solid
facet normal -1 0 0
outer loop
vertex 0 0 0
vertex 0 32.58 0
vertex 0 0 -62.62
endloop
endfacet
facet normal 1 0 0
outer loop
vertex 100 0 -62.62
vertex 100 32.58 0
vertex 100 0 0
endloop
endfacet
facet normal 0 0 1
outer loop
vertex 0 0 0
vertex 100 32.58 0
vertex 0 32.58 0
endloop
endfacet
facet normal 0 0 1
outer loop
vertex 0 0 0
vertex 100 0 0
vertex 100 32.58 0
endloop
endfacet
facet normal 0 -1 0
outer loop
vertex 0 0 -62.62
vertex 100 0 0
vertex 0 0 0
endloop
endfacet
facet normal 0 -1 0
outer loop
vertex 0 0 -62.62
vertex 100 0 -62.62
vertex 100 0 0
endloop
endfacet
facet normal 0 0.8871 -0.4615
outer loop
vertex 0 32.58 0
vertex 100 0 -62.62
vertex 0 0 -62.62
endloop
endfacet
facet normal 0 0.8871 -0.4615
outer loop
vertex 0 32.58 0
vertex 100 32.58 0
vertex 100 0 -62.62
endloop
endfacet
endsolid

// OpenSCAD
/* doodle-meta {"version":1,"parameters":{"width":{"label":"Overall width","description":"Changes the body width","unit":"mm","feature":"body_width"},"depth":{"label":"Overall depth","description":"Changes the body depth","unit":"mm","feature":"body_depth"},"height":{"label":"Overall height","description":"Changes the body height","unit":"mm","feature":"body_height"}},"features":{"body_width":{"kind":"dimension","axis":"x","label":"Overall width"},"body_depth":{"kind":"dimension","axis":"y","label":"Overall depth"},"body_height":{"kind":"dimension","axis":"z","label":"Overall height"}}} */

// Wedge ramp (lofted incline block)
// Front view (looking down Y): right-angled triangle -> vertical back at Y=0,
//   horizontal base at Z=0, sloped hypotenuse descending to the front edge (Y=depth).
// Top view (looking down Z): rectangular footprint of constant width.
// Constructed by extruding the triangular profile (in the YZ plane) along X (width).

width  = 100.0;   // X: width
depth  = 62.62;   // Y: front-to-back depth
height = 32.58;   // Z: height

module wedge() {
    // Triangular profile lies in the YZ plane (local x -> Y, local y -> Z),
    // extruded along the X axis (width).
    // Base sits on the build plate (Z=0). Vertical back at Y=0,
    // sloped hypotenuse descends to the front edge (Y=depth, Z=0).
    rotate([0, 90, 0])
        linear_extrude(height = width, center = false) {
            polygon(points = [
                [0, 0],        // back-bottom  (Y=0, Z=0)
                [depth, 0],    // front-bottom (Y=depth, Z=0)
                [0, height]    // back-top     (Y=0, Z=height)
            ]);
        }
}

// Single positive body, positioned so the lowest geometry rests at Z=0.
translate([0, 0, 0])
    wedge();
